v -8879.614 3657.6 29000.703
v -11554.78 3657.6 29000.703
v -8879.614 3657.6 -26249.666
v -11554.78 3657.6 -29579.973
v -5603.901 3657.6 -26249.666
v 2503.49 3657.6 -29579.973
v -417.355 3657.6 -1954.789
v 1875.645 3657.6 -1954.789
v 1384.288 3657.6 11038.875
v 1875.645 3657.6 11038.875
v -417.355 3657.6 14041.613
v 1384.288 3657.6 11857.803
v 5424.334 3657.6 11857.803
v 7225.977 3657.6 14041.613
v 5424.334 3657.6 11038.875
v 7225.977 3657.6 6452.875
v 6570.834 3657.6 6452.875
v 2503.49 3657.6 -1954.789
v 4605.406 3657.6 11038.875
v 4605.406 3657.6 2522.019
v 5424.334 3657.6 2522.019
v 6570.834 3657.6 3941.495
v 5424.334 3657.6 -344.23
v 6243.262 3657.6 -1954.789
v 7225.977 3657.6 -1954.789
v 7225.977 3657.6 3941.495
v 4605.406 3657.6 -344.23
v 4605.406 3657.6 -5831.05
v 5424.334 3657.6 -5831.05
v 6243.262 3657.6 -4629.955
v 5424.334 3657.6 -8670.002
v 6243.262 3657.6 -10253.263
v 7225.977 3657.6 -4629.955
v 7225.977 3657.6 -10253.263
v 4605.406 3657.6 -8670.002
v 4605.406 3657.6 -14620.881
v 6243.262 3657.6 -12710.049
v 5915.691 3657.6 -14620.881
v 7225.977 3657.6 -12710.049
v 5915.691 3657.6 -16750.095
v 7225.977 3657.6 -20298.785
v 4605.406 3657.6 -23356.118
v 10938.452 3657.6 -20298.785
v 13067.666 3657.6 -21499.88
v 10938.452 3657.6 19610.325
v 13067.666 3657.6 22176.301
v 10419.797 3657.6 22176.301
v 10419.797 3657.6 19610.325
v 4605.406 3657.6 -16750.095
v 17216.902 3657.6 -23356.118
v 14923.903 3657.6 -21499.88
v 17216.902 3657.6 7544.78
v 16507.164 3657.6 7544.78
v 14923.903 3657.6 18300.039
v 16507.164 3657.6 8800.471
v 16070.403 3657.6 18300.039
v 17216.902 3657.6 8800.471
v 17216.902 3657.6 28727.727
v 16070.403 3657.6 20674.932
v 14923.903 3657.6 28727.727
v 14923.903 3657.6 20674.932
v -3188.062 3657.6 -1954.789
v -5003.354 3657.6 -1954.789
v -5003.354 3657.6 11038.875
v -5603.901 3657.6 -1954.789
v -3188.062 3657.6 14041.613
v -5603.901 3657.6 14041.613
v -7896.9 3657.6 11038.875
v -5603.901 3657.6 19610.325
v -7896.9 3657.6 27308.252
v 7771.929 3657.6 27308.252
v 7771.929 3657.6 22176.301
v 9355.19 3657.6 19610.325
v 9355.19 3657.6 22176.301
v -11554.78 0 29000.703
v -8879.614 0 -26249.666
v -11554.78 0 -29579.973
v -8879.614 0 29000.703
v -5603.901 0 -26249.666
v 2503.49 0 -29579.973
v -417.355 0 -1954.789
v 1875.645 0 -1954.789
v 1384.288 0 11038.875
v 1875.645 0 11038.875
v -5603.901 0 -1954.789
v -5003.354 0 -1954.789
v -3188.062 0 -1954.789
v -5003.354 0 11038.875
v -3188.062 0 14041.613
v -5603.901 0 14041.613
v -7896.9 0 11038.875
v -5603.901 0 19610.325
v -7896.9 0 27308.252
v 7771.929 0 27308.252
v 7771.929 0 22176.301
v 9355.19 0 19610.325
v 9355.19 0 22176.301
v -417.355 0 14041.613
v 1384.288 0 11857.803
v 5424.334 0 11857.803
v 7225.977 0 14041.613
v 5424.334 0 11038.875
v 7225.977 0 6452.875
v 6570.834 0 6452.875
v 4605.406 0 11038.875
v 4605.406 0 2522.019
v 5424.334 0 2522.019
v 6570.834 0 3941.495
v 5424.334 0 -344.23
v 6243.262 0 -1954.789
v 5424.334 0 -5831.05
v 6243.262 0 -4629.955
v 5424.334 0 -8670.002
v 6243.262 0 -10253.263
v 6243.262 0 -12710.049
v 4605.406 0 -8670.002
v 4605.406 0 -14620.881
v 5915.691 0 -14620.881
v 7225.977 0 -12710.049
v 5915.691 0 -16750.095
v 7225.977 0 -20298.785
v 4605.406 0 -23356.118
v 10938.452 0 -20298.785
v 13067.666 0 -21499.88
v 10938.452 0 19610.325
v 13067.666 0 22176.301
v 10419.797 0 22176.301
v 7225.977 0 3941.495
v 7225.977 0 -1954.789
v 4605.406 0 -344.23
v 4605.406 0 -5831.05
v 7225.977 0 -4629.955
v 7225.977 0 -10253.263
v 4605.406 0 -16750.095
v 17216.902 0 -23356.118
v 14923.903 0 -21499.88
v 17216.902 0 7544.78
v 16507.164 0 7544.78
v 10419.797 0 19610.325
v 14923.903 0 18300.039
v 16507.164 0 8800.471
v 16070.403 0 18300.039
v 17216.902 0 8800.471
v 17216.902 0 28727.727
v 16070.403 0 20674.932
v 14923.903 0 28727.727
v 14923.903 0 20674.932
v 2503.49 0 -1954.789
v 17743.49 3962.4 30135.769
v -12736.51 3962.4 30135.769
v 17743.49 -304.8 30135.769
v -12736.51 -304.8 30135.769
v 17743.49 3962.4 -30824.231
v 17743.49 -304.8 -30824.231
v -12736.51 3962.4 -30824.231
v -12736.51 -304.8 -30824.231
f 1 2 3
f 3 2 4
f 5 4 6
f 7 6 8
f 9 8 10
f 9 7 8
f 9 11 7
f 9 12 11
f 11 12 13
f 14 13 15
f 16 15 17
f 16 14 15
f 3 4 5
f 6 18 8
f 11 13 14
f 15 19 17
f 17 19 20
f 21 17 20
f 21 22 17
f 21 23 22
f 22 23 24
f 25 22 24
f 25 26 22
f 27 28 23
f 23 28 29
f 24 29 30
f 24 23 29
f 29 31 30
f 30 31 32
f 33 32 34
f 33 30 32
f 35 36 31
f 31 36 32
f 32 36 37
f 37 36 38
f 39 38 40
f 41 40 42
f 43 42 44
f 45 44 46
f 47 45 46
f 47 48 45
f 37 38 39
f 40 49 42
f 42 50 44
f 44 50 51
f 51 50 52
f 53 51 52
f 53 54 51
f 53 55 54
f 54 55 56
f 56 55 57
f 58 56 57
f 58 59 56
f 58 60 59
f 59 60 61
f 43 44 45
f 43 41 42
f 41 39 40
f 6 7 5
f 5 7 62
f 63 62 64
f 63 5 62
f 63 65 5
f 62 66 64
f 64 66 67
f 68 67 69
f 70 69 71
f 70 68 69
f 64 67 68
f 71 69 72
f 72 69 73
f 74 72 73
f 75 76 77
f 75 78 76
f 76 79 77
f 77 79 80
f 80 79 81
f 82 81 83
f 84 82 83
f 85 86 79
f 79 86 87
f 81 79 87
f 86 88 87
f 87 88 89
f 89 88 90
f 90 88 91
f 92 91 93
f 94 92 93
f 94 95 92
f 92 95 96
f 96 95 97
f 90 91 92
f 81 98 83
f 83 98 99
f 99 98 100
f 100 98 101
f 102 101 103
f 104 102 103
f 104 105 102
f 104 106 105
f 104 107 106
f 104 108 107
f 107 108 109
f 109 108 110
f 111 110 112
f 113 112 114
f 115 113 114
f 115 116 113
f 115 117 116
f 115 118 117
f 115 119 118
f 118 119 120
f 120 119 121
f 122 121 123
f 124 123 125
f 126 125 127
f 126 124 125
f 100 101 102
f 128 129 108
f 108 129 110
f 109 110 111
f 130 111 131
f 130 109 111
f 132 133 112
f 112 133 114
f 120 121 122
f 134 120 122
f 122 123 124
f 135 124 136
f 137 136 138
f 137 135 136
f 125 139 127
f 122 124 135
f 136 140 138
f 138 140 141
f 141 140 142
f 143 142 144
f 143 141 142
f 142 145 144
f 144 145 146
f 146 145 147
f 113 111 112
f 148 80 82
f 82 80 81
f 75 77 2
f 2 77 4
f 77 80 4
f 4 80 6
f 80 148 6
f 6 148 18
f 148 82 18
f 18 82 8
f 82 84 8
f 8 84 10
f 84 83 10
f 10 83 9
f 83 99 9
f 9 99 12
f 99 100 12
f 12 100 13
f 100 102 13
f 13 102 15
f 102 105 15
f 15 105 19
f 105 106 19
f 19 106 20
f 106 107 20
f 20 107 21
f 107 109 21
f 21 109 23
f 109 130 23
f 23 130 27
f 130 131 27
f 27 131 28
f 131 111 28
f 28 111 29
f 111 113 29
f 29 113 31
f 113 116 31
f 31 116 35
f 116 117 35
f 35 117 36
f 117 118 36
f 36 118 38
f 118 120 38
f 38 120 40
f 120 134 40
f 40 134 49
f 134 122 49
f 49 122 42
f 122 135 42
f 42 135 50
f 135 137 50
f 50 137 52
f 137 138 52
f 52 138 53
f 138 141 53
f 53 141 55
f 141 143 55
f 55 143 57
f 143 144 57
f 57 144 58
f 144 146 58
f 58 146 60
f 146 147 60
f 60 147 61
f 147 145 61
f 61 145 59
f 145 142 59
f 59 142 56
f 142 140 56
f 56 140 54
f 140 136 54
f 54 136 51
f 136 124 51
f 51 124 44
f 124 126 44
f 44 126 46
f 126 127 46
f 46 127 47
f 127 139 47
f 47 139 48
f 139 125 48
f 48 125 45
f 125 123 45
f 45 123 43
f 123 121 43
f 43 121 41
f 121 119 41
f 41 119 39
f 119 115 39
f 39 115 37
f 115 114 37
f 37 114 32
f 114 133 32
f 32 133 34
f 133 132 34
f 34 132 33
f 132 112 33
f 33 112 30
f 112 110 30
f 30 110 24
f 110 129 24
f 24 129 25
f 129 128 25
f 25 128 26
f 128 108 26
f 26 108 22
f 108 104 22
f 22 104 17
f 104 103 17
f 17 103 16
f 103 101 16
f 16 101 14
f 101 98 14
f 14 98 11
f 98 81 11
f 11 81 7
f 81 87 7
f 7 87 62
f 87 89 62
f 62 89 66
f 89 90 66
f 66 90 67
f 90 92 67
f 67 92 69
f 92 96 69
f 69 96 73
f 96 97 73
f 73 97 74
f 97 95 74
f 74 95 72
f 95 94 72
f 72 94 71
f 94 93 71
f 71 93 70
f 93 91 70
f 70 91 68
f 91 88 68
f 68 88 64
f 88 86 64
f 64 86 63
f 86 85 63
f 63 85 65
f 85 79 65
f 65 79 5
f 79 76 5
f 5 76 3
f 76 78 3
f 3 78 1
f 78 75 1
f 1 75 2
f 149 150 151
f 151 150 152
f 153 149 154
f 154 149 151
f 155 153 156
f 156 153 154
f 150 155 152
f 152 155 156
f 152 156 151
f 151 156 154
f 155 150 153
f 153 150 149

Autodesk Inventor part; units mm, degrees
ref_plane "YZ Plane" through (0, 0, 0) normal (1, 0, 0) x (0, 1, 0)
ref_plane "XZ Plane" through (0, 0, 0) normal (0, 1, 0) x (-1, 0, 0)
ref_plane "XY Plane" through (0, 0, 0) normal (0, 0, 1) x (1, 0, 0)
sketch "Sketch1" plane through (0, 0, 0) normal (0, 1, 0) x (-1, 0, 0)
  line L0 (12736.5103, 30135.77) -> (-17743.4897, 30135.77)
  line L1 (-17743.4897, 30135.77) -> (-17743.4897, -30824.23)
  line L2 (-17743.4897, -30824.23) -> (12736.5103, -30824.23)
  line L3 (12736.5103, -30824.23) -> (12736.5103, 30135.77)
  line L4 (11554.7803, 29000.7039) -> (8879.6143, 29000.7039)
  line L5 (8879.6143, 29000.7039) -> (8879.6143, -26249.6646)
  line L6 (11554.7803, -29579.9734) -> (11554.7803, 29000.7039)
  line L7 (8879.6143, -26249.6646) -> (5603.9009, -26249.6646)
  line L8 (-2503.4897, -1954.7891) -> (-2503.4897, -29579.9734)
  line L9 (-2503.4897, -26249.6646) -> (-2503.4897, -1954.7891)
  line L10 (5603.9009, -1954.7891) -> (5603.9009, -26249.6646)
  line L11 (3188.0623, -1954.7891) -> (3188.0623, 14041.612)
  line L12 (5003.3535, 11038.8746) -> (5003.3535, -1954.7891)
  line L13 (-1875.6447, -1954.7891) -> (-1875.6447, 11038.8746)
  line L14 (-1875.6447, 11038.8746) -> (-1384.2877, 11038.8746)
  line L15 (417.3547, 14041.612) -> (417.3547, -1954.7891)
  line L16 (-7225.9766, 6452.8756) -> (-7225.9766, 14041.612)
  line L17 (-7225.9766, 14041.612) -> (417.3547, 14041.612)
  line L18 (417.3547, 14041.612) -> (417.3547, -1954.7891)
  line L19 (-4605.4058, 11038.8746) -> (-5424.3342, 11038.8746)
  line L20 (5003.3535, 11038.8746) -> (7896.9003, 11038.8746)
  line L21 (7896.9003, 11038.8746) -> (7896.9003, 14041.612)
  line L22 (5603.9009, 14041.612) -> (3188.0623, 14041.612)
  line L23 (3188.0623, 14041.612) -> (3188.0623, 11038.8746)
  line L24 (5603.9009, 14041.612) -> (5603.9009, 19610.3251)
  line L25 (5603.9009, 27308.2519) -> (7896.9003, 27308.2519)
  line L26 (7896.9003, 27308.2519) -> (7896.9003, 11038.8746)
  line L27 (7896.9003, 27308.2519) -> (-7771.9288, 27308.2519)
  line L28 (-7771.9288, 27308.2519) -> (-7771.9288, 22176.3007)
  line L29 (-9355.1903, 19610.3251) -> (5603.9009, 19610.3251)
  line L30 (-13067.6654, 22176.3007) -> (-13067.6654, 19610.3251)
  line L31 (-13067.6654, 22176.3007) -> (-13067.6654, -21499.88)
  line L32 (-10938.4517, -20298.785) -> (-10938.4517, 19610.3251)
  line L33 (-17216.9024, 7544.7802) -> (-17216.9024, -23356.1177)
  line L34 (-17216.9024, -23356.1177) -> (-4605.4058, -23356.1177)
  line L35 (-4605.4058, -23356.1177) -> (-4605.4058, -20298.785)
  line L36 (-17216.9024, 28727.7278) -> (-14923.903, 28727.7278)
  line L37 (-16507.1645, 7544.7802) -> (-17216.9024, 7544.7802)
  line L38 (-17216.9024, 8800.4703) -> (-16507.1645, 8800.4703)
  line L39 (-16507.1645, 8800.4703) -> (-16507.1645, 7544.7802)
  line L40 (-14923.903, 18300.0396) -> (-16070.4027, 18300.0396)
  line L41 (-16070.4027, 18300.0396) -> (-16070.4027, 20674.932)
  line L42 (-16070.4027, 20674.932) -> (-14923.903, 20674.932)
  line L43 (-14923.903, 18300.0396) -> (-14923.903, -21499.88)
  line L44 (-14923.903, -21499.88) -> (-13067.6654, -21499.88)
  line L45 (-13067.6654, -21499.88) -> (-13067.6654, 22176.3007)
  line L46 (-7225.9766, 3941.4952) -> (-6570.8339, 3941.4952)
  line L47 (-6570.8339, 3941.4952) -> (-6570.8339, 6452.8756)
  line L48 (-6570.8339, 6452.8756) -> (-7225.9766, 6452.8756)
  line L49 (-4605.4058, 2522.0194) -> (-5424.3342, 2522.0194)
  line L50 (-5424.3342, 2522.0194) -> (-5424.3342, -344.23)
  line L51 (-5424.3342, -344.23) -> (-4605.4058, -344.23)
  line L52 (-7225.9766, -1954.7891) -> (-6243.2625, -1954.7891)
  line L53 (-6243.2625, -1954.7891) -> (-6243.2625, -4629.9552)
  line L54 (-6243.2625, -4629.9552) -> (-7225.9766, -4629.9552)
  line L55 (-4605.4058, -5831.0502) -> (-5424.3342, -5831.0502)
  line L56 (-5424.3342, -5831.0502) -> (-5424.3342, -8670.0019)
  line L57 (-5424.3342, -8670.0019) -> (-4605.4058, -8670.0019)
  line L58 (-7225.9766, -10253.2635) -> (-6243.2625, -10253.2635)
  line L59 (-6243.2625, -10253.2635) -> (-6243.2625, -12710.0486)
  line L60 (-6243.2625, -12710.0486) -> (-7225.9766, -12710.0486)
  line L61 (-4605.4058, -14620.8815) -> (-5915.6912, -14620.8815)
  line L62 (-5915.6912, -14620.8815) -> (-5915.6912, -16750.0953)
  line L63 (-5915.6912, -16750.0953) -> (-4605.4058, -16750.0953)
  line L64 (-1384.2877, 11038.8746) -> (-1384.2877, 11857.803)
  line L65 (-1384.2877, 11857.803) -> (-5424.3342, 11857.803)
  line L66 (-5424.3342, 11857.803) -> (-5424.3342, 11038.8746)
  line L67 (-7225.9766, -20298.785) -> (-10938.4517, -20298.785)
  line L68 (-17216.9024, -20298.785) -> (-17216.9024, 7544.7802)
  line L69 (-17216.9024, 8800.4703) -> (-17216.9024, 28727.7278)
  line L70 (-14923.903, 28727.7278) -> (-14923.903, 20674.932)
  line L71 (-14923.903, 18300.0396) -> (-14923.903, -21499.88)
  line L72 (5003.3535, -1954.7891) -> (5603.9009, -1954.7891)
  line L73 (-2503.4897, -1954.7891) -> (-1875.6447, -1954.7891)
  line L74 (417.3547, -1954.7891) -> (3188.0623, -1954.7891)
  line L75 (-1384.2877, 11038.8746) -> (-1875.6447, 11038.8746)
  line L76 (-4605.4058, 11038.8746) -> (-5424.3342, 11038.8746)
  line L77 (-5424.3342, 11038.8746) -> (-4605.4058, 11038.8746)
  line L78 (-1875.6447, 11038.8746) -> (-1384.2877, 11038.8746)
  line L79 (-7225.9766, 11038.8746) -> (-7225.9766, 6452.8756)
  line L80 (-7225.9766, 3941.4952) -> (-7225.9766, -1954.7891)
  line L81 (-4605.4058, 2522.0194) -> (-4605.4058, 11038.8746)
  line L82 (-4605.4058, -5831.0502) -> (-4605.4058, -344.23)
  line L83 (-4605.4058, -23356.1177) -> (-4605.4058, -16750.0953)
  line L84 (-4605.4058, -14620.8815) -> (-4605.4058, -8670.0019)
  line L85 (-7225.9766, -4629.9552) -> (-7225.9766, -10253.2635)
  line L86 (-7225.9766, -12710.0486) -> (-7225.9766, -20298.785)
  line L87 (-10419.7971, 19610.3251) -> (-10419.7971, 22176.3007)
  line L88 (-9355.1903, 22176.3007) -> (-9355.1903, 19610.3251)
  line L89 (-10938.4517, 19610.3251) -> (-10419.7971, 19610.3251)
  line L90 (-9355.1903, 19610.3251) -> (-7771.9288, 19610.3251)
  line L91 (-7771.9288, 22176.3007) -> (-9355.1903, 22176.3007)
  line L92 (-10419.7971, 22176.3007) -> (-13067.6654, 22176.3007)
  line L93 (11554.7803, -29579.9734) -> (-2503.4897, -29579.9734)
  point P0 (0, 0)
  dimension "d0" = 60960
  dimension "d1" = 30480
  dimension "d2" = 2675.1659
extrude "Extrusion1" add sketch "Sketch1" along normal blind 3657.6
sketch "Sketch2" plane through (0, 0, 0) normal (0, -1, 0) x (1, 0, 0)
  line L0 (17743.4897, 30135.77) -> (-12736.5103, 30135.77)
  line L1 (-12736.5103, 30135.77) -> (-12736.5103, -30824.23)
  line L2 (-12736.5103, -30824.23) -> (17743.4897, -30824.23)
  line L3 (17743.4897, -30824.23) -> (17743.4897, 30135.77)
  point P0 (0, 0)
extrude "Extrusion2" add sketch "Sketch2" along normal blind 304.8
sketch "Sketch3" plane through (0, 3657.6, 0) normal (0, 1, 0) x (1, 0, 0)
  line L0 (-12736.5103, 30824.23) -> (17743.4897, 30824.23)
  line L1 (17743.4897, 30824.23) -> (17743.4897, -30135.77)
  line L2 (17743.4897, -30135.77) -> (-12736.5103, -30135.77)
  line L3 (-12736.5103, -30135.77) -> (-12736.5103, 30824.23)
  point P0 (0, 0)
extrude "Extrusion3" add sketch "Sketch3" along normal blind 304.8
properties part number "Level1"
